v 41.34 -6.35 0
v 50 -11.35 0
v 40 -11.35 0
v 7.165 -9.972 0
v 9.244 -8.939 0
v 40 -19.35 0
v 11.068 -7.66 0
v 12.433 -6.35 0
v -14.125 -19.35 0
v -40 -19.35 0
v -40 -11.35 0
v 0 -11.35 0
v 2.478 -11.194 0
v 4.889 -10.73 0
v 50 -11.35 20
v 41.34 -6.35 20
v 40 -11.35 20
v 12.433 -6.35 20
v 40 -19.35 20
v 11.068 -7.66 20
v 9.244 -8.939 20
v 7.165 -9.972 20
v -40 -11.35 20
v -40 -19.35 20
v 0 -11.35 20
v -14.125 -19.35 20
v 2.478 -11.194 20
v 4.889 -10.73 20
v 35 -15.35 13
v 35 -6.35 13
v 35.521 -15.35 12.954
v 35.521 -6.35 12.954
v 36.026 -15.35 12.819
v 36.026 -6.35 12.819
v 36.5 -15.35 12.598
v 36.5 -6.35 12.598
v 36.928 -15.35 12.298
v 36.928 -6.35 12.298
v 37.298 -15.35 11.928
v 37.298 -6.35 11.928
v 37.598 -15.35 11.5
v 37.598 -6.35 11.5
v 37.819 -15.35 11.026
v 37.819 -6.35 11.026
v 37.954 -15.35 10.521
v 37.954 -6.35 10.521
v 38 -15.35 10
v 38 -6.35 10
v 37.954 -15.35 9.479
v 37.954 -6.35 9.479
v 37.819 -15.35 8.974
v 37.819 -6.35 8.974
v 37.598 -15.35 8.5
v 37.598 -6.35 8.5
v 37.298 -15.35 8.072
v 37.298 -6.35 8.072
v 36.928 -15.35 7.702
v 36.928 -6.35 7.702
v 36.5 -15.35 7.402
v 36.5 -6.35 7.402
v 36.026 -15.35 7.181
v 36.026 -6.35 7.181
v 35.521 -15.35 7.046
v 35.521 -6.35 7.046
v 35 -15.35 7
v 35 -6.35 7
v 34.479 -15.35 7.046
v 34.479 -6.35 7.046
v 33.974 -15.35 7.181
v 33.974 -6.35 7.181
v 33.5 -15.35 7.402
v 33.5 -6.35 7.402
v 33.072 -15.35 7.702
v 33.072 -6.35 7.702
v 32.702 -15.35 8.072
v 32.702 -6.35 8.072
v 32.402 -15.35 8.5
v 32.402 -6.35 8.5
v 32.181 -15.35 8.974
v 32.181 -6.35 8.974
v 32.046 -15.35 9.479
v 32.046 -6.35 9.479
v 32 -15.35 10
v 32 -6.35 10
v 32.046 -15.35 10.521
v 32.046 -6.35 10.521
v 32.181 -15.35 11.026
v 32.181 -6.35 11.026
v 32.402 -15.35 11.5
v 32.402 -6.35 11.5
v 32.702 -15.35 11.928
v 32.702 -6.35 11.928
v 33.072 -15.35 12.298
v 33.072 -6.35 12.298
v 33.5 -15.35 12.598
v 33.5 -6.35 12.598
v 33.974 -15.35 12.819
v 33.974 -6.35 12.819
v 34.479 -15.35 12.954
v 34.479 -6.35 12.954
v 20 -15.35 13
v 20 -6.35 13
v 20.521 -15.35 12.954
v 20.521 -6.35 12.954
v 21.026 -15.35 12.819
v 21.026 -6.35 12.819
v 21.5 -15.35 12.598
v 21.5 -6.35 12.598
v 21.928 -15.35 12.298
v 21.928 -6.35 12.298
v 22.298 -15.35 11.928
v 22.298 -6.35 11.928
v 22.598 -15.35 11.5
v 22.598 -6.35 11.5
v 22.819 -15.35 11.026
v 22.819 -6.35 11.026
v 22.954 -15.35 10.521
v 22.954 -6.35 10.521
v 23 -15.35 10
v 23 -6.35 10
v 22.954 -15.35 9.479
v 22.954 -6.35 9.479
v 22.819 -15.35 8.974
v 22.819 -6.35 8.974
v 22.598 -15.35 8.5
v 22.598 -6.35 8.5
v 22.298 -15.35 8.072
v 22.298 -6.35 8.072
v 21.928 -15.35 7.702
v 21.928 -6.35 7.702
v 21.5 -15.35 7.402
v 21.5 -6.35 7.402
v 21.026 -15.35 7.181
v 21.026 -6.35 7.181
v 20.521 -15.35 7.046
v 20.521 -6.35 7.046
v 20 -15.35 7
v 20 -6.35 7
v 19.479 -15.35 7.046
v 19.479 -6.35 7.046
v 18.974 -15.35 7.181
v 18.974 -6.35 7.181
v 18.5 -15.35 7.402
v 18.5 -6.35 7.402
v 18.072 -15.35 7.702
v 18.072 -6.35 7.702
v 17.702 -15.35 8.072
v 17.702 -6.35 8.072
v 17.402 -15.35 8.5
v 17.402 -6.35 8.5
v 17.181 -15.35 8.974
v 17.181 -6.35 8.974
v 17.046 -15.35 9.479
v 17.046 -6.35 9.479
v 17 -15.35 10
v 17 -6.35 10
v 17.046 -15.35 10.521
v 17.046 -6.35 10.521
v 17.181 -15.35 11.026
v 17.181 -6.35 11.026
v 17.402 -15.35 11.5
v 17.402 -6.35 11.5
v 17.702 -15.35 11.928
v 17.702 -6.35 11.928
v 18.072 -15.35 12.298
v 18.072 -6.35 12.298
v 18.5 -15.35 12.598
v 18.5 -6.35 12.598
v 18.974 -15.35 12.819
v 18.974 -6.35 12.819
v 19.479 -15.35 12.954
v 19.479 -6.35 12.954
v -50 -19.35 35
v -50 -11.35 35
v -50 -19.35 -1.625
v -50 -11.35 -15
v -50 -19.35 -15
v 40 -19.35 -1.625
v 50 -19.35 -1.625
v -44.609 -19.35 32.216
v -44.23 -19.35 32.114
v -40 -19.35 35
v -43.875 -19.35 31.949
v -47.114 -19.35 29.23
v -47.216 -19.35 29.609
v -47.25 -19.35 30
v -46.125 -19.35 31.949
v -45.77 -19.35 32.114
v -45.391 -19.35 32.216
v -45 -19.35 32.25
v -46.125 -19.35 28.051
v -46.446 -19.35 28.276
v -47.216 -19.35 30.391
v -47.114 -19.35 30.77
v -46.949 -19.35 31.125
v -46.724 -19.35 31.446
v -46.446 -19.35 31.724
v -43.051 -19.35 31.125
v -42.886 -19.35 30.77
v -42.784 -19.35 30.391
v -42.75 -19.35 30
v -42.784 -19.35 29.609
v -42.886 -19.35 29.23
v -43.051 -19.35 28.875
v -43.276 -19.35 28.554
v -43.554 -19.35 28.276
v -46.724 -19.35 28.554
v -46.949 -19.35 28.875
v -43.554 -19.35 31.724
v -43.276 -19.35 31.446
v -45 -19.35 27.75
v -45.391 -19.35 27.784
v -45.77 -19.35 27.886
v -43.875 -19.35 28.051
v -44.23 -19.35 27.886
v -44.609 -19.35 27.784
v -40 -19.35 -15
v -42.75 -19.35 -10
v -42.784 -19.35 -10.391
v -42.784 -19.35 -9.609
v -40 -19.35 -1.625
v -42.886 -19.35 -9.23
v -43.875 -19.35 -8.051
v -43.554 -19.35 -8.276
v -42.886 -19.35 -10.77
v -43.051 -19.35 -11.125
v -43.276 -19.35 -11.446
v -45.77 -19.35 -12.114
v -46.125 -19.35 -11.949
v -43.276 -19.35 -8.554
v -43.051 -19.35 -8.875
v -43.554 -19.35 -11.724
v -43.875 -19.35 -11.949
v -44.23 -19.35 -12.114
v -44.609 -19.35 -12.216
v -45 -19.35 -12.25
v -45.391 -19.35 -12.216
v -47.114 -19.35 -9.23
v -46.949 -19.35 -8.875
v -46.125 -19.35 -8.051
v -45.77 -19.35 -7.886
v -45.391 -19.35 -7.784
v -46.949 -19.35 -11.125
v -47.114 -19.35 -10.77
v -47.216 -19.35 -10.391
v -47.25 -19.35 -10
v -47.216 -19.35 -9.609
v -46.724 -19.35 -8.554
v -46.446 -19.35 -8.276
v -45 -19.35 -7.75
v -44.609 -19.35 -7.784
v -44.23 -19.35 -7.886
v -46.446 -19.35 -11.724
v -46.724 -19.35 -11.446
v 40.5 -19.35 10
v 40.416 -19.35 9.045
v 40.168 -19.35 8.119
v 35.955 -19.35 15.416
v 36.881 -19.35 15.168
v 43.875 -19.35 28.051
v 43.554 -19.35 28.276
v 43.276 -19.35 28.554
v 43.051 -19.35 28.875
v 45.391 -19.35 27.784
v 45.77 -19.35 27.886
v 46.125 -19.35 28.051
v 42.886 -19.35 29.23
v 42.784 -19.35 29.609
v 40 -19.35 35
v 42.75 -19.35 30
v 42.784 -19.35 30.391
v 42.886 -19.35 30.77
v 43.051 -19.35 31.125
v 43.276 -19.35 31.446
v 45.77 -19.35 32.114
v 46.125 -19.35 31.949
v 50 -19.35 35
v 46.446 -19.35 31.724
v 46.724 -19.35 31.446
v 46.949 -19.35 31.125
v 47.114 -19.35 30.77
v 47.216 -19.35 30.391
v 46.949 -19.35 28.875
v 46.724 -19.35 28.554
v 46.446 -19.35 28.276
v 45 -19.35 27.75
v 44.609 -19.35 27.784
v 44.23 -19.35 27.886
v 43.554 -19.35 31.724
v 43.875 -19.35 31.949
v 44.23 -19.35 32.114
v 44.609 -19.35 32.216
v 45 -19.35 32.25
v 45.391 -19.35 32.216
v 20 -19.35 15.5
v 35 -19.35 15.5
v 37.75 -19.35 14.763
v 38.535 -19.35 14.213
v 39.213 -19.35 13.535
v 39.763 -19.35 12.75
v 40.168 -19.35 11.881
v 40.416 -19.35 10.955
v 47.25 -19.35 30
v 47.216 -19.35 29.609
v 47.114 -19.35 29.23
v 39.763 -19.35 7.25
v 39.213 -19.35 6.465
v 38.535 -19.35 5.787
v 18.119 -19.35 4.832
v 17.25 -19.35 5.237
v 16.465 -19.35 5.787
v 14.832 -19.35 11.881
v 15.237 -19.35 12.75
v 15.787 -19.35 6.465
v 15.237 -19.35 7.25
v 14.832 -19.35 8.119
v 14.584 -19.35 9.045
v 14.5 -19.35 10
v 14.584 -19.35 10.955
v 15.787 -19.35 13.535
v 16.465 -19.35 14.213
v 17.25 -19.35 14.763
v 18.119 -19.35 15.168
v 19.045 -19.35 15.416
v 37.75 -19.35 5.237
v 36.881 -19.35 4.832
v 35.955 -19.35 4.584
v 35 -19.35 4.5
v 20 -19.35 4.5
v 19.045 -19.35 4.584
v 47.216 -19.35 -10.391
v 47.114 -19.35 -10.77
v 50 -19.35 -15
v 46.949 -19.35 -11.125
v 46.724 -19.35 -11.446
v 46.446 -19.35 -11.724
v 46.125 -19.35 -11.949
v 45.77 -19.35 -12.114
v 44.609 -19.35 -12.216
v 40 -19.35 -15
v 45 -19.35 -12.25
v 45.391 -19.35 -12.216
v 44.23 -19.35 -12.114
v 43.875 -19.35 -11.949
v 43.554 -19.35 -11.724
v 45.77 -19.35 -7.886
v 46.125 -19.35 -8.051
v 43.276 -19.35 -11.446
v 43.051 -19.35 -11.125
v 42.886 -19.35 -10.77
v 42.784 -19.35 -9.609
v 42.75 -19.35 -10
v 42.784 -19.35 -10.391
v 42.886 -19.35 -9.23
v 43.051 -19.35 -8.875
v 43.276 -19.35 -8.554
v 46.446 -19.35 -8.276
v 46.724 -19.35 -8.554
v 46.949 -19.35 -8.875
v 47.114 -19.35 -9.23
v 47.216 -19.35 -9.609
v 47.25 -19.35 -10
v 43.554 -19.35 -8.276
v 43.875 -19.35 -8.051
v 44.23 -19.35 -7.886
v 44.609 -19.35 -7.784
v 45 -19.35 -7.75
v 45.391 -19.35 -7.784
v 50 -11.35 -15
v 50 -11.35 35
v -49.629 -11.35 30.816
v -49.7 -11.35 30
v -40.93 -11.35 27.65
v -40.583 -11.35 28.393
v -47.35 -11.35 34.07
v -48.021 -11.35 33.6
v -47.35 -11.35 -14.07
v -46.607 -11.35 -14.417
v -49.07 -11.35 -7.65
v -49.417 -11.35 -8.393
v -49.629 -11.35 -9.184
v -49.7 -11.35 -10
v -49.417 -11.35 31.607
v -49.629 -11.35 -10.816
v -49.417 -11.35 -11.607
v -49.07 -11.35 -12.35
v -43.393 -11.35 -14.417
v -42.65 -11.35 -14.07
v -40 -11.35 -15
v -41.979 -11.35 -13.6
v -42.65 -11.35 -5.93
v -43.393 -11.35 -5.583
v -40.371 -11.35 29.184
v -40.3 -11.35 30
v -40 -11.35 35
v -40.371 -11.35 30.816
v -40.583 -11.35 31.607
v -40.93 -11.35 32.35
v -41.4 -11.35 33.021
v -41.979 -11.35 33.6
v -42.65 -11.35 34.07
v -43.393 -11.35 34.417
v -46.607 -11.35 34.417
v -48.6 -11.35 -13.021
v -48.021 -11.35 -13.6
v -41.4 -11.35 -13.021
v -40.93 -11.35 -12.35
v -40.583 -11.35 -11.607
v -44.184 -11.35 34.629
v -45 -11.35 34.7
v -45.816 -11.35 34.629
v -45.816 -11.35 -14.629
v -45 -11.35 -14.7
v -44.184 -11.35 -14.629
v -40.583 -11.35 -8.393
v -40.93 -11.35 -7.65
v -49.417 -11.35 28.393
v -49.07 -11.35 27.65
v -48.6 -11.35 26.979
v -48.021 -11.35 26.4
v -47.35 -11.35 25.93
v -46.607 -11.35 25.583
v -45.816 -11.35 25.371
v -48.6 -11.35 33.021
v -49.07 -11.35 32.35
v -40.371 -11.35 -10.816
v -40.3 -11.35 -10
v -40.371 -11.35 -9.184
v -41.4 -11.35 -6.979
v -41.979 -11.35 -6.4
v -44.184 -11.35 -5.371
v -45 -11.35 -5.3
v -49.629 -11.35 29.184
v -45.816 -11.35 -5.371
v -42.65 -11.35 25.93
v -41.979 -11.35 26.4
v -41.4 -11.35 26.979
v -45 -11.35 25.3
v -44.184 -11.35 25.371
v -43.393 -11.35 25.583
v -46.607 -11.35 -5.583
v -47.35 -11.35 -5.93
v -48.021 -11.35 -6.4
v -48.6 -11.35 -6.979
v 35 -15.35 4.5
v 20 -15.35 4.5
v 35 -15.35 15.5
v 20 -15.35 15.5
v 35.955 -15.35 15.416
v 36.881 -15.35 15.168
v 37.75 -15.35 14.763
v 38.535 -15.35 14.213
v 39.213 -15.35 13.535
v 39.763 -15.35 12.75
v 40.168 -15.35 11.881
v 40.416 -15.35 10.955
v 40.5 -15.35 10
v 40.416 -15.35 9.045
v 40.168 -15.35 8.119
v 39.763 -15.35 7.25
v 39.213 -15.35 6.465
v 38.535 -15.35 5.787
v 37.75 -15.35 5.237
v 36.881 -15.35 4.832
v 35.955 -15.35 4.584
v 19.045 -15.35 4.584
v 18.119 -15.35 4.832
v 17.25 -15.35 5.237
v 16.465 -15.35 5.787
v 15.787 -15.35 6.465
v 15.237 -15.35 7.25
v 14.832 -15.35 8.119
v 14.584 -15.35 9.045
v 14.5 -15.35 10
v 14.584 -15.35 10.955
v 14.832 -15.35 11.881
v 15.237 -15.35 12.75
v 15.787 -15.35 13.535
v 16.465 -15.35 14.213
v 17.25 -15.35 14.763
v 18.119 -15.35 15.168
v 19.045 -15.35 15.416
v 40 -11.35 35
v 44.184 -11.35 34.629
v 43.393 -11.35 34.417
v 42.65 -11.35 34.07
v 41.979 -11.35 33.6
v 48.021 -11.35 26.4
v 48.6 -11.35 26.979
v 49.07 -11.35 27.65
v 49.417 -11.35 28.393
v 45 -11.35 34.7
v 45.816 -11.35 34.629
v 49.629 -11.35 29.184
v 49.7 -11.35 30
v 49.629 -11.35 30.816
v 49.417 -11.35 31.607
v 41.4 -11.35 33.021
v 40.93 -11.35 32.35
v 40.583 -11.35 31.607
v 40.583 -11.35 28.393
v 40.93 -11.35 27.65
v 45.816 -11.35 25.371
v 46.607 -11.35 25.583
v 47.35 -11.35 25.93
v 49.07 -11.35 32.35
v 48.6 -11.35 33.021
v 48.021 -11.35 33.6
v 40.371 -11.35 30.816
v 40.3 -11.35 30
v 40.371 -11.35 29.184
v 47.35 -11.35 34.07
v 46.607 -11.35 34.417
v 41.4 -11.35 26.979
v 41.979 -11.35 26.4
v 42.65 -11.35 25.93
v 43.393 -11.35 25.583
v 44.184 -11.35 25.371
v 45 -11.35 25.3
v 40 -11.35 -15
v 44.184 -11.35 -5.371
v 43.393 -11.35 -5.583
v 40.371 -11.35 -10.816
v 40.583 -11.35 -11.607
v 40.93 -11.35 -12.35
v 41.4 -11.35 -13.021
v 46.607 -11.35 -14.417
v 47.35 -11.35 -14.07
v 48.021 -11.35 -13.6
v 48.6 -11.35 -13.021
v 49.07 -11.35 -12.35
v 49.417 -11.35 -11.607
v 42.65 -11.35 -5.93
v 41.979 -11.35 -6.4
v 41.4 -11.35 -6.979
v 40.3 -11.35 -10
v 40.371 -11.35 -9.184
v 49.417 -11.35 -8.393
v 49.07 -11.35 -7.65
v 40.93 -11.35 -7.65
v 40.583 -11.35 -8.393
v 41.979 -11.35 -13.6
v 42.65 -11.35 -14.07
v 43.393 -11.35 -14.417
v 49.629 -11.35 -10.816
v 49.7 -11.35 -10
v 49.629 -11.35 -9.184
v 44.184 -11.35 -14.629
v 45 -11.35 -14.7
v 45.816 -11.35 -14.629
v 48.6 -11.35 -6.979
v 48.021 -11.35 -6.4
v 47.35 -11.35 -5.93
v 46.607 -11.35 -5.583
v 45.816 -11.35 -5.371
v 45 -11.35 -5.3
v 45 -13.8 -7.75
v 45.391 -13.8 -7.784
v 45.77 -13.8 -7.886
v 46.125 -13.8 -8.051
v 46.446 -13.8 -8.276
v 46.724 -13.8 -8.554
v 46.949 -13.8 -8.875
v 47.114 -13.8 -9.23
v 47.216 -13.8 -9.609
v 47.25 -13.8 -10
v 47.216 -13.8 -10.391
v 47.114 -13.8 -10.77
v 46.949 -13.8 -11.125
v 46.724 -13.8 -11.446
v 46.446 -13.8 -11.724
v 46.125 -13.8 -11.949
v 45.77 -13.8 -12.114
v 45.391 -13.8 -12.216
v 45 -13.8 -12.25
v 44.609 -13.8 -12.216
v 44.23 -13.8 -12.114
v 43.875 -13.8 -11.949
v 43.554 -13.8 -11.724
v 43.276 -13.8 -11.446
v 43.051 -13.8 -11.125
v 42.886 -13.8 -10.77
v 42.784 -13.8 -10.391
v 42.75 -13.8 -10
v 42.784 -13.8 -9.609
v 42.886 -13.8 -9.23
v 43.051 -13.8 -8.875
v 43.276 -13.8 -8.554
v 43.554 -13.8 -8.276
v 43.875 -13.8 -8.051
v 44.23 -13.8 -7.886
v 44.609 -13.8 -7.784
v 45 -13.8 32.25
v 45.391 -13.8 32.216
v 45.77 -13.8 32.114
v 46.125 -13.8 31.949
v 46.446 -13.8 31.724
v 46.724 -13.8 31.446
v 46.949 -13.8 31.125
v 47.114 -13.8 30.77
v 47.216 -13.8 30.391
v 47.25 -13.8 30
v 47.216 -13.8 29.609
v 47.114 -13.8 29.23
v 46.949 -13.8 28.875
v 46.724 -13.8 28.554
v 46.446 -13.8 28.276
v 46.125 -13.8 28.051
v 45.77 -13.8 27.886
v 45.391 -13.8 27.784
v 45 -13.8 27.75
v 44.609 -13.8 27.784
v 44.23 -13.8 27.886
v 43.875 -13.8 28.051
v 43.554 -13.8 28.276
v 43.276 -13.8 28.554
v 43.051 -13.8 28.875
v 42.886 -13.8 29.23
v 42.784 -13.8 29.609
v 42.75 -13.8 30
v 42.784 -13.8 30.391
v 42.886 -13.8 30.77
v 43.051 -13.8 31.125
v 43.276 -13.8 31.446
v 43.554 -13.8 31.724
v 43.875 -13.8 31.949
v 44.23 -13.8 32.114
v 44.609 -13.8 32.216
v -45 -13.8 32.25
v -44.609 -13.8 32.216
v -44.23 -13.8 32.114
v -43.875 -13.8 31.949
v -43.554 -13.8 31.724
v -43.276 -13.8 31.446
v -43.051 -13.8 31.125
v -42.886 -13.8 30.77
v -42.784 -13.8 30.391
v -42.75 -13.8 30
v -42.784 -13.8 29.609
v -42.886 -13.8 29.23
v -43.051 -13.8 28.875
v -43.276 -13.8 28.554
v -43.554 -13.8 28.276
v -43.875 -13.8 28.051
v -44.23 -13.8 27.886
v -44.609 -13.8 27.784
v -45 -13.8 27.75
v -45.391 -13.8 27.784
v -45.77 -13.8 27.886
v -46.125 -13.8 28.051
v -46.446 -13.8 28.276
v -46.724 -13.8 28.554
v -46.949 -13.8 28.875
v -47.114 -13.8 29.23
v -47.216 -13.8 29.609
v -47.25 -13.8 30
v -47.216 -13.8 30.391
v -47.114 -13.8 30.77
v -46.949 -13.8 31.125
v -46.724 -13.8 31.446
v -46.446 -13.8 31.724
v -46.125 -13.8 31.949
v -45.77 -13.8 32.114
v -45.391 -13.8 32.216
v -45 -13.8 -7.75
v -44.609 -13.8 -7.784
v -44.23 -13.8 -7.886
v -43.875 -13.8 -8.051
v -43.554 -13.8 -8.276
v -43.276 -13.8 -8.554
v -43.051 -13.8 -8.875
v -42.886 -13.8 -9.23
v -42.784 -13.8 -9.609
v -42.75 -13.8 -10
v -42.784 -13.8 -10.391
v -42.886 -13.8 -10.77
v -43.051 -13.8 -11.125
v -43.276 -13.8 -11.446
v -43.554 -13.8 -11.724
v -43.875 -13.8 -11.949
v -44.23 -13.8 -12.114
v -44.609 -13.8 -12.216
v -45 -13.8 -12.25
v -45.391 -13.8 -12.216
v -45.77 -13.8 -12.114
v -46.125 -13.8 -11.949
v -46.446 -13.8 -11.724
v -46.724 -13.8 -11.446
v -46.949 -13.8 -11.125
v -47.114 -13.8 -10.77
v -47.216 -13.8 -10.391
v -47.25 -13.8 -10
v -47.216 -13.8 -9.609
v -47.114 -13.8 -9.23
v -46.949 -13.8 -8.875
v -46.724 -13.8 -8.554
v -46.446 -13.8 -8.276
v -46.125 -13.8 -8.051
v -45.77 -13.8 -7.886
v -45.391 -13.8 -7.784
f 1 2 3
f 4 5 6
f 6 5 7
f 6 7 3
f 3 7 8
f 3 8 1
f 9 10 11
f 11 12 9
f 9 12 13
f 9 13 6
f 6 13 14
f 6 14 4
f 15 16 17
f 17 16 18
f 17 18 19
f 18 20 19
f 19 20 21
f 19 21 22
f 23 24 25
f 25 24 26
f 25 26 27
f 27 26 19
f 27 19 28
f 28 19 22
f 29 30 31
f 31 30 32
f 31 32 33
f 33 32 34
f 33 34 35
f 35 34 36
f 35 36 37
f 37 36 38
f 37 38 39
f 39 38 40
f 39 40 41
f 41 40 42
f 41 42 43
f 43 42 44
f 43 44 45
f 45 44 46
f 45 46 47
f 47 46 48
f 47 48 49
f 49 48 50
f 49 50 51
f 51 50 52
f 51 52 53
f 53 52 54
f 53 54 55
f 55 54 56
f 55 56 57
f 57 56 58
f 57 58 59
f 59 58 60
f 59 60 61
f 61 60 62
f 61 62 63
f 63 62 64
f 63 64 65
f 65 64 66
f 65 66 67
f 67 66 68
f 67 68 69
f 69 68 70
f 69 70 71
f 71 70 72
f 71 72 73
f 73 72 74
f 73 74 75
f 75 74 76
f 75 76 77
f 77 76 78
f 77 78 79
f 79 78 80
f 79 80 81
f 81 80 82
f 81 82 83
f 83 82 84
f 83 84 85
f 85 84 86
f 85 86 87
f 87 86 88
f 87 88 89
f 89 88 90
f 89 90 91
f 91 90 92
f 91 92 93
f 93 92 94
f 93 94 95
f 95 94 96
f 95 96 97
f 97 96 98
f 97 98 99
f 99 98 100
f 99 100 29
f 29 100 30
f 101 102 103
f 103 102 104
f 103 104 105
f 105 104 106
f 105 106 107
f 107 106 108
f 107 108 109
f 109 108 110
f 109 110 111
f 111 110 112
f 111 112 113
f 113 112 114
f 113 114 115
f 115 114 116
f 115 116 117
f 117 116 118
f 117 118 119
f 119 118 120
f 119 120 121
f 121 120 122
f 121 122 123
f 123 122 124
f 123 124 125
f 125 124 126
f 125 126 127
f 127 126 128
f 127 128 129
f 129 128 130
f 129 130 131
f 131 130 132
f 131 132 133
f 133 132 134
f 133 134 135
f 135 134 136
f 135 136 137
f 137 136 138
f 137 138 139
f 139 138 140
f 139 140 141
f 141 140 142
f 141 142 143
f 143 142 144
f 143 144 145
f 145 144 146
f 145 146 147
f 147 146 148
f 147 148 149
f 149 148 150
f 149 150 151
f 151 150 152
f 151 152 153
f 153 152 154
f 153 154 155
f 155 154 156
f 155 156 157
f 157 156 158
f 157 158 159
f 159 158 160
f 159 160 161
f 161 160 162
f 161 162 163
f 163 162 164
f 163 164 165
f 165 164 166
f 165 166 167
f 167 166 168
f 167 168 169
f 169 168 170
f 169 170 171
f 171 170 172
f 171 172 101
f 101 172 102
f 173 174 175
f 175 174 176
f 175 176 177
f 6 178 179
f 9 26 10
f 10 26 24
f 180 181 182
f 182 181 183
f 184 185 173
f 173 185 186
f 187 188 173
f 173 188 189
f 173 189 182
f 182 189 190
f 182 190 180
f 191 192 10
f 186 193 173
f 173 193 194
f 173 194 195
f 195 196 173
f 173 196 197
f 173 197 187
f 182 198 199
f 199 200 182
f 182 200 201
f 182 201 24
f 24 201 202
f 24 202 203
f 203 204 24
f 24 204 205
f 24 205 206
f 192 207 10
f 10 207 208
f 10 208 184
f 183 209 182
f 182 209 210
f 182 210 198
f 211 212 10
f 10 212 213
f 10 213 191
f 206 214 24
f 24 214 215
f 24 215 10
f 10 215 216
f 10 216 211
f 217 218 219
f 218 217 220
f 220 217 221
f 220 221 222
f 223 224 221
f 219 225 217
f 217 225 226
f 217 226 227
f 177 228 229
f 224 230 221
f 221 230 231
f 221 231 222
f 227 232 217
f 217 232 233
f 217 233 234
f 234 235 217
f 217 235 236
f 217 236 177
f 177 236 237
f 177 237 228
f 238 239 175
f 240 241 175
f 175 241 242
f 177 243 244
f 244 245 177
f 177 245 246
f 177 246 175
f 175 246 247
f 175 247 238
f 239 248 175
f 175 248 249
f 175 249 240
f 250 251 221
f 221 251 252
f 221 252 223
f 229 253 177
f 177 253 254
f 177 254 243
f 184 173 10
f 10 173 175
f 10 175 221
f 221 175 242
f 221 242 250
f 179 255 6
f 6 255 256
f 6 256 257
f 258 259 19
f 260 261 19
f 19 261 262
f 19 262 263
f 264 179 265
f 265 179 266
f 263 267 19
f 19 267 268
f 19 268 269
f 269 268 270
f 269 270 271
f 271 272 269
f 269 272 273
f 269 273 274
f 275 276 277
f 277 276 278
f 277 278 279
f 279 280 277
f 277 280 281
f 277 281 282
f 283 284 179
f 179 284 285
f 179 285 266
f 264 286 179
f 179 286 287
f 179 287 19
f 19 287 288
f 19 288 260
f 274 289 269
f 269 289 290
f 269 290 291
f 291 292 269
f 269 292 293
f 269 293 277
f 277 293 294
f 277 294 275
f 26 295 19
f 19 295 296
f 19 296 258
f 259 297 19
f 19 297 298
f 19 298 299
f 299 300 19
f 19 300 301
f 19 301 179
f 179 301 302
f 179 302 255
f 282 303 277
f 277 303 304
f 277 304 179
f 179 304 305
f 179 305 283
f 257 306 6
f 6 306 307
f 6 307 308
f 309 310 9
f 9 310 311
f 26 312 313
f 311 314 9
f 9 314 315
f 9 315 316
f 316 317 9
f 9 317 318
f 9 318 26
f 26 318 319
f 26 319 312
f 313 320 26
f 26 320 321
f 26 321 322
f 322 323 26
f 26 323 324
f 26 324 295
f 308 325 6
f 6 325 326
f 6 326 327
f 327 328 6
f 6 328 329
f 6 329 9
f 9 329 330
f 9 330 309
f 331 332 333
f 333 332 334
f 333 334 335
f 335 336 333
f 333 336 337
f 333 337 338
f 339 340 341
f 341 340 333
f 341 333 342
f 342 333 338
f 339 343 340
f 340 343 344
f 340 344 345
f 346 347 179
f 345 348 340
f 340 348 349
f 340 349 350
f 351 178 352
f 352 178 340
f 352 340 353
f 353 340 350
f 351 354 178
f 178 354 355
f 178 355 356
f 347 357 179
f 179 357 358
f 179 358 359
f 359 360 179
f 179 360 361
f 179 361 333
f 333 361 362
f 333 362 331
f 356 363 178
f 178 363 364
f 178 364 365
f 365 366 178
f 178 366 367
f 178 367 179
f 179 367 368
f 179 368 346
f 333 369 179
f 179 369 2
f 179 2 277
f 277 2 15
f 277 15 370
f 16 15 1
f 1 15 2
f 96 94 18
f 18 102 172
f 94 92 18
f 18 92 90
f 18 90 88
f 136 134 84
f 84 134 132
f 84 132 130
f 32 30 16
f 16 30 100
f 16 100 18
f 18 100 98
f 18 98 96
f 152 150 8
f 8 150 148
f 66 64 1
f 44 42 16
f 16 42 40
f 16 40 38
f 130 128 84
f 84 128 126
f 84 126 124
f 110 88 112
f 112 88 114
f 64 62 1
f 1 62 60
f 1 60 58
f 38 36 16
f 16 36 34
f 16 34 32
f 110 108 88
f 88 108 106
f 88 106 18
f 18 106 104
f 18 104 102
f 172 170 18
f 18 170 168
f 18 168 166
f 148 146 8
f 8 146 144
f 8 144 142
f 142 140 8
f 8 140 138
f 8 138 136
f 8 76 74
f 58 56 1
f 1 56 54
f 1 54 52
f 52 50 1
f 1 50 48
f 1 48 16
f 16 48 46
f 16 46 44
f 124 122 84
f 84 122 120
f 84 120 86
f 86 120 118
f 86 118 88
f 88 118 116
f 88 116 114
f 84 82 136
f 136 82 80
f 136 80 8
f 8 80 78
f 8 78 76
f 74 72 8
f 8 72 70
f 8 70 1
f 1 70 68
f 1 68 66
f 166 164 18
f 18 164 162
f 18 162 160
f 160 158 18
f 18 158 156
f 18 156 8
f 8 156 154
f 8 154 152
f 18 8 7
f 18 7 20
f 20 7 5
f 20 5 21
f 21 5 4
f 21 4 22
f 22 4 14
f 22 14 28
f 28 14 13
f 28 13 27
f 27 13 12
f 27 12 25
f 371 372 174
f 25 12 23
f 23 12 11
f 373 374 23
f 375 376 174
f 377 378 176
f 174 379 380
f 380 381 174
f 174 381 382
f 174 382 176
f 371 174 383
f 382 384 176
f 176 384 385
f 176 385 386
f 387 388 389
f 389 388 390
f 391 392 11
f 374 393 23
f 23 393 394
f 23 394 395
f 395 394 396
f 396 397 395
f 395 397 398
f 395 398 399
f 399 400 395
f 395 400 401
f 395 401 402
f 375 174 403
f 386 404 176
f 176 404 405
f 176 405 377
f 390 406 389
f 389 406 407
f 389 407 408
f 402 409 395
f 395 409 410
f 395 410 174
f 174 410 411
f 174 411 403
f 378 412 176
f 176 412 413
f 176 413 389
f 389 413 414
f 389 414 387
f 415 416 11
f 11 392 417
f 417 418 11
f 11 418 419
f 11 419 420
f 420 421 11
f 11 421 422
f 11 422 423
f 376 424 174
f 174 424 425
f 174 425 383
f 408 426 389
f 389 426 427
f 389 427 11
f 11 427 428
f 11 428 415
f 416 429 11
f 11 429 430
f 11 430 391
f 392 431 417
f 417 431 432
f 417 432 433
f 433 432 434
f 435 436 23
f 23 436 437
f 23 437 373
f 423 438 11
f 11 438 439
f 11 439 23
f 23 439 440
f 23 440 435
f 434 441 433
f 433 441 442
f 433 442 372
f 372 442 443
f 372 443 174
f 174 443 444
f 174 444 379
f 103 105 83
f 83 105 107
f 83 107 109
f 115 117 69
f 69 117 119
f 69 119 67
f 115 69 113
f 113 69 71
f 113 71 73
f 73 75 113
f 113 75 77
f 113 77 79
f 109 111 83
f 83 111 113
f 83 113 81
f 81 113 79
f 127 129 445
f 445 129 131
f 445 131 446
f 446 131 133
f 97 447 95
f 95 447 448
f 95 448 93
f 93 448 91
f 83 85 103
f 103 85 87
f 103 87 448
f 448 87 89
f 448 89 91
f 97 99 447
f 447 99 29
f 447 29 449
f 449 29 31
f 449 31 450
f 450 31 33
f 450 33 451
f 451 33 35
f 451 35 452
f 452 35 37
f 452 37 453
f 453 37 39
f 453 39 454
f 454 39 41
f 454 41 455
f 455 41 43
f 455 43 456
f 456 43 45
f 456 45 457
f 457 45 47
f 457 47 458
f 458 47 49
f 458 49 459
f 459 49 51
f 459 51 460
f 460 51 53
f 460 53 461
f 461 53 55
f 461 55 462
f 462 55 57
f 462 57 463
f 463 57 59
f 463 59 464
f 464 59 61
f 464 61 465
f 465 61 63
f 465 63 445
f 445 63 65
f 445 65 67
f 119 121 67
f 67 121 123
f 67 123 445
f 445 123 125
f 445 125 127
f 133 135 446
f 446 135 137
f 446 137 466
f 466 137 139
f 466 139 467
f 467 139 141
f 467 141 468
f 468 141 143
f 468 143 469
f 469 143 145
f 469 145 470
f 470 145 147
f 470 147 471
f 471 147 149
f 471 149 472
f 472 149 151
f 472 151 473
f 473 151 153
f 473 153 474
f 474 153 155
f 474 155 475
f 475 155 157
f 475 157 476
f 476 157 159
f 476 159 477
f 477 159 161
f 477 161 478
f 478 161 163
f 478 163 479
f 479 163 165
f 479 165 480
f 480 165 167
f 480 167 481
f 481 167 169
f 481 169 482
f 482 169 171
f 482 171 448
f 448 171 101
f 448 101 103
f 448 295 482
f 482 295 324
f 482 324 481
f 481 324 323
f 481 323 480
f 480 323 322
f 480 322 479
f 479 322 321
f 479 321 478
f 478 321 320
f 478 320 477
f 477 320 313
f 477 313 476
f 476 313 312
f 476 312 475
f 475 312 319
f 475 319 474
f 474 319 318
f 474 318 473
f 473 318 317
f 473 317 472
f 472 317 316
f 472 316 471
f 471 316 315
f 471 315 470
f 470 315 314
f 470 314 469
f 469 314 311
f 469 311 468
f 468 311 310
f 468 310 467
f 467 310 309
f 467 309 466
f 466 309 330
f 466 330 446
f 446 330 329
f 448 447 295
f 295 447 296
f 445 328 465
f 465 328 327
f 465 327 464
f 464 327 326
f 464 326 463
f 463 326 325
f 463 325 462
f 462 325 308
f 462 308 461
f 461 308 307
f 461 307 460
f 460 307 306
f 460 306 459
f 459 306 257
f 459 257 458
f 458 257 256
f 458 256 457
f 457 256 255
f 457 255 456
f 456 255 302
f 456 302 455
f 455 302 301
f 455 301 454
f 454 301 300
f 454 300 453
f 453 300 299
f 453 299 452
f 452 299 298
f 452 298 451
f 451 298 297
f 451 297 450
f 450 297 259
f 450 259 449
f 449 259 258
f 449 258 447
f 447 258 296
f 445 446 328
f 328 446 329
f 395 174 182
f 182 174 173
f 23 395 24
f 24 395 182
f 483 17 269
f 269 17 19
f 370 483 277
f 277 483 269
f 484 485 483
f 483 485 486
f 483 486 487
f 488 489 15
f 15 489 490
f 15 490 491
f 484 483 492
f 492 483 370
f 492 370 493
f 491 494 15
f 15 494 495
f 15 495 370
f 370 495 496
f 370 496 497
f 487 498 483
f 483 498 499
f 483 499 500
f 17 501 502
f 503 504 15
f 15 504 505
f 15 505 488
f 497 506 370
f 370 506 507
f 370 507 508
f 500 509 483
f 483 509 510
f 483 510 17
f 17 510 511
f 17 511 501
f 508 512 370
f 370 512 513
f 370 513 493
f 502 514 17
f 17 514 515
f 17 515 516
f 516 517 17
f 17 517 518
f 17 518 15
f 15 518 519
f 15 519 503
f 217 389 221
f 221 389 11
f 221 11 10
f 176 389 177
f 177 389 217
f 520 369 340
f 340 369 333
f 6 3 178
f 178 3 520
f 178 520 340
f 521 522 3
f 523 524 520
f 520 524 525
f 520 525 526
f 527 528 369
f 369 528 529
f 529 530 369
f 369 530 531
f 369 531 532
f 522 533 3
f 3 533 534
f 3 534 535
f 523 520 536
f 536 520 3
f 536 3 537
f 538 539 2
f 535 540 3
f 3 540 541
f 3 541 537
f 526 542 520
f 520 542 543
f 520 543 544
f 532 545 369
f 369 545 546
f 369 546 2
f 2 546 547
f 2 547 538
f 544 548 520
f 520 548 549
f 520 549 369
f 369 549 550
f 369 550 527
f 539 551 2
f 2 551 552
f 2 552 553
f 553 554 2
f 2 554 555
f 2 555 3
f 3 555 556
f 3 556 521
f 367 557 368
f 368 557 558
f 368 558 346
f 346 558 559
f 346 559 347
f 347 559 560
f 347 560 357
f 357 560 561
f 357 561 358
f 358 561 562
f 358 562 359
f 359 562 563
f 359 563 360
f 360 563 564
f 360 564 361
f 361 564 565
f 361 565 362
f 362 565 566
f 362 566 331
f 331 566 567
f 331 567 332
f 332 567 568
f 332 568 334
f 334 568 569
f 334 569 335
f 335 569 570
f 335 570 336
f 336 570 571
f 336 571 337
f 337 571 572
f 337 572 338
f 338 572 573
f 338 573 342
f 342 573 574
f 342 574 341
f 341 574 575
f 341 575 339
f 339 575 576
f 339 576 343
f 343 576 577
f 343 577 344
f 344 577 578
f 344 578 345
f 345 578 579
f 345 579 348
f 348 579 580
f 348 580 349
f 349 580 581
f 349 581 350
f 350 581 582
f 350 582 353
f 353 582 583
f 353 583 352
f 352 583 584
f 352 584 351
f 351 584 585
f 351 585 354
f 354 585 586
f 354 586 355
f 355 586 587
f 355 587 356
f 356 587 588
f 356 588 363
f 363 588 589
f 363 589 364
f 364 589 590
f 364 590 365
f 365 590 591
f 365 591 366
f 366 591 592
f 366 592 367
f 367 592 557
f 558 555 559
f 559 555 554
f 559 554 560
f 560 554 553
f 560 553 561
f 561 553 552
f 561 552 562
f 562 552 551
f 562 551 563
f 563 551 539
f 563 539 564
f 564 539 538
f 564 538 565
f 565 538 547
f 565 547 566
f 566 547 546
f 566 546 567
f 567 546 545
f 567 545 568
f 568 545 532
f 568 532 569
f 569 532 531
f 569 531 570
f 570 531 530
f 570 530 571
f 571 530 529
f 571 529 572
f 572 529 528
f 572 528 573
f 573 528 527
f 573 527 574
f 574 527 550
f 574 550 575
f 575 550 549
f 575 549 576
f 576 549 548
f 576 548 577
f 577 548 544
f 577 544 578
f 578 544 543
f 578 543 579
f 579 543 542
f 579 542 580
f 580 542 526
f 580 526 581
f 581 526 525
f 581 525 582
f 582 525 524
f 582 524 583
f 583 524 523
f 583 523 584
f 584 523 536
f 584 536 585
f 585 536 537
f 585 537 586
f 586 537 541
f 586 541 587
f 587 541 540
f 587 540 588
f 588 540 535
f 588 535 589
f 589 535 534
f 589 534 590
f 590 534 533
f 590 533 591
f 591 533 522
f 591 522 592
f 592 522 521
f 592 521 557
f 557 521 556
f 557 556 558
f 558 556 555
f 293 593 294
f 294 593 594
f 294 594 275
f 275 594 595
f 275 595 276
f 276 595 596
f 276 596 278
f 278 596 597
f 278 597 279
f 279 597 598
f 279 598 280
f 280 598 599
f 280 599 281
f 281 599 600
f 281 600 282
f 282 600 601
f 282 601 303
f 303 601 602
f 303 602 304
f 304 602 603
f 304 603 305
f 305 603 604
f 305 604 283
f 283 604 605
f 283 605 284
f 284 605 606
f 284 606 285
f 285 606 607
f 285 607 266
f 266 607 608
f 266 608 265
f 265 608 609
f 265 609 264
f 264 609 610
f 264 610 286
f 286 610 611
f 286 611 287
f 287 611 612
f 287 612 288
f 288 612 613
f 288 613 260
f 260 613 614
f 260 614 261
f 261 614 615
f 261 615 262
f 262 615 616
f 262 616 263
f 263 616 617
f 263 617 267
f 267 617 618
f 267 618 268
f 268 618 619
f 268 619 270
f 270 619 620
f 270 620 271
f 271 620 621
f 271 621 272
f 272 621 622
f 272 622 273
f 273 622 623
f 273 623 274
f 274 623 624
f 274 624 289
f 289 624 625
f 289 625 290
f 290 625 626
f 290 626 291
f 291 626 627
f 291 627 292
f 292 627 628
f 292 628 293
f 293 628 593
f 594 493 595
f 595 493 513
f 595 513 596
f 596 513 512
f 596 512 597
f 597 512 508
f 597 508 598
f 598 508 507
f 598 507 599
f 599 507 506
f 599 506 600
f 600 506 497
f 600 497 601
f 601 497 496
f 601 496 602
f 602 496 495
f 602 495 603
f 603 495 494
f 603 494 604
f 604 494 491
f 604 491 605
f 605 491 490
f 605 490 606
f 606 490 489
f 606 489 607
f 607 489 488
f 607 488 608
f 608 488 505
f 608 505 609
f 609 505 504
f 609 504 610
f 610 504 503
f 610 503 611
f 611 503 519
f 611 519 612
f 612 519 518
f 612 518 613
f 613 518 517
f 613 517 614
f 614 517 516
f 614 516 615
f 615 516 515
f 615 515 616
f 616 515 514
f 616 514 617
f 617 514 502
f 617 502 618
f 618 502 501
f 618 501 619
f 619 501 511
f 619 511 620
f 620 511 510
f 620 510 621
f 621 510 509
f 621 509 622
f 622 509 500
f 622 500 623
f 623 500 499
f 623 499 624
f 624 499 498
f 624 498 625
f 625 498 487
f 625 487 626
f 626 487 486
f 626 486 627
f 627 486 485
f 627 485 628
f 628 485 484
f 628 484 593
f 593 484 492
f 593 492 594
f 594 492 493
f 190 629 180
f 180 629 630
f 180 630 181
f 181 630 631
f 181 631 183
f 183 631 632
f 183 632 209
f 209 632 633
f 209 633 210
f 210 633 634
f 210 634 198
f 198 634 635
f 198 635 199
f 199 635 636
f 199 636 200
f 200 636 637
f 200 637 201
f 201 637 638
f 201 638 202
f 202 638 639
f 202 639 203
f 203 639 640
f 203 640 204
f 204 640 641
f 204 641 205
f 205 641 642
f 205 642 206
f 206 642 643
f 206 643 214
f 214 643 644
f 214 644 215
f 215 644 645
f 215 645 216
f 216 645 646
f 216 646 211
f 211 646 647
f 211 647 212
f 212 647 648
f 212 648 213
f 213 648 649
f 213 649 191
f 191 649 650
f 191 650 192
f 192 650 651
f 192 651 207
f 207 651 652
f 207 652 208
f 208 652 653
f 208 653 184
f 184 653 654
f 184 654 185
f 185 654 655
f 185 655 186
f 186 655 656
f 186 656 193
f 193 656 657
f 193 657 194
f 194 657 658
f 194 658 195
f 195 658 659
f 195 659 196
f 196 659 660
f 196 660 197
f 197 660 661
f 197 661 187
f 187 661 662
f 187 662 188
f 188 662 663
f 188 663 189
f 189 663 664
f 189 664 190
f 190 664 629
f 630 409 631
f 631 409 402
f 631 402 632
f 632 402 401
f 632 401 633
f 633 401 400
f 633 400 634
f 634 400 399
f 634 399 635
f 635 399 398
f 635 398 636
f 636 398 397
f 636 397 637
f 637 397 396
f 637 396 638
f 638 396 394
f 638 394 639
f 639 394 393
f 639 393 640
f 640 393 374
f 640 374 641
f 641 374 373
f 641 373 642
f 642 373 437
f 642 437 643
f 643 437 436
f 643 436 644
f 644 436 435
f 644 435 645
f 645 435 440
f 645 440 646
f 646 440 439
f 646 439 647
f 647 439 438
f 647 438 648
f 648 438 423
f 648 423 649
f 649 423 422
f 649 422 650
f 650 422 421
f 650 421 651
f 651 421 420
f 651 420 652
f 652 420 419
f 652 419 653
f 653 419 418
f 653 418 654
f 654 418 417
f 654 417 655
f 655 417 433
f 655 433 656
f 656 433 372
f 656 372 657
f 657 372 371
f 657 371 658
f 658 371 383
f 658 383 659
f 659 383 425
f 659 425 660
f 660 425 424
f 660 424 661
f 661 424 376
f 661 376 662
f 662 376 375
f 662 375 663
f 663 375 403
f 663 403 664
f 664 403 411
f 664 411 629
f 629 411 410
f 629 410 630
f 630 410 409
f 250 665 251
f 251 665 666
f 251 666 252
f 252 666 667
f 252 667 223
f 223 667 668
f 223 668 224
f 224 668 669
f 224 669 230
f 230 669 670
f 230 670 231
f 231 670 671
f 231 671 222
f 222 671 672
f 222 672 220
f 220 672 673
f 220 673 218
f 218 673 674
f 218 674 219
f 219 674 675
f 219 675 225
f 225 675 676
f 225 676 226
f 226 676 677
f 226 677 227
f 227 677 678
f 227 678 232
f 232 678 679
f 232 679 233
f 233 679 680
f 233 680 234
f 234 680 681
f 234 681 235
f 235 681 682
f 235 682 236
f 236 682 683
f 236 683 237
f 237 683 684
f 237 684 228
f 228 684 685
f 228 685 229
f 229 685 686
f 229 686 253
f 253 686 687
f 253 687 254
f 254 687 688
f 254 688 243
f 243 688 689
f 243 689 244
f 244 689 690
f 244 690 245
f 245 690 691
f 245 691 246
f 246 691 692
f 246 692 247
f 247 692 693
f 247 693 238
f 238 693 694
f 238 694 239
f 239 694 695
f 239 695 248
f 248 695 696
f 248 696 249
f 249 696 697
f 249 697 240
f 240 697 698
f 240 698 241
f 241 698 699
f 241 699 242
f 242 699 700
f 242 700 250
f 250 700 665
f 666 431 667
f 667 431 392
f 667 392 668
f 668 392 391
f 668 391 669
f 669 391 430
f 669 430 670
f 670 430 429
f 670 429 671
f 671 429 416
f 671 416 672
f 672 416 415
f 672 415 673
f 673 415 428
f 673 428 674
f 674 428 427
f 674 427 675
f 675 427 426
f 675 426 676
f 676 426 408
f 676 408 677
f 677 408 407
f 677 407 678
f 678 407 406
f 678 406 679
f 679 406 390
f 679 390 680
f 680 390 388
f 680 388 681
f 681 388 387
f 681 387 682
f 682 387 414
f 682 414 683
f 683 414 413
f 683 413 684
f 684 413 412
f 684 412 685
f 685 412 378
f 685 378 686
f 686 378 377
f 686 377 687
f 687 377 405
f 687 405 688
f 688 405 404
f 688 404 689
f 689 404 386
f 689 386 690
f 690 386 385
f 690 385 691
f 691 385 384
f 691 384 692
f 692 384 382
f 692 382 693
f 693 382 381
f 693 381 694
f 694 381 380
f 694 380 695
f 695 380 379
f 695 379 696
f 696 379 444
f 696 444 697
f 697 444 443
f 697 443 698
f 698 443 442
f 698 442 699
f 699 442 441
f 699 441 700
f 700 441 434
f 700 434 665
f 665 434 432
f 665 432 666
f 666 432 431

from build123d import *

# Parameters (mm, degrees)
SKETCH1_W                                       = 50
SKETCH1_H                                       = 8
BOSS_EXTRUDE1_DEPTH                             = 20
SKETCH2_R                                       = 3
CUT_EXTRUDE1_DEPTH                              = 17
CUT_EXTRUDE2_DEPTH                              = 4
SKETCH4_W                                       = 10
SKETCH4_H                                       = 15
BOSS_EXTRUDE2_DEPTH                             = 8
CSK_FOR_M4_FLAT_HEAD_MACHINE_SCREW1_D           = 4.5
CSK_FOR_M4_FLAT_HEAD_MACHINE_SCREW1_CSINK_D     = 9.4
CSK_FOR_M4_FLAT_HEAD_MACHINE_SCREW1_CSINK_ANGLE = 90


with BuildPart() as part:
    # Sketch1 → Boss-Extrude1 (new body)
    with BuildSketch(Plane.XY):
        with Locations((-25, -15.35)):
            Rectangle(SKETCH1_W, SKETCH1_H)
        with Locations((25, -15.35)):
            Rectangle(SKETCH1_W, SKETCH1_H)
        with BuildLine():
            Line((40, -6.35), (12.432745191, -6.35))
            add(Edge.make_bspline(
                [(0, -11.35), (7.972410052, -11.35), (12.432745191, -6.35)],
                knots=[1.570796327, 1.570796327, 1.570796327, 2.547844784, 2.547844784, 2.547844784], degree=2, weights=[1, 0.883026434, 1]))
            Line((0, -11.35), (50, -11.35))
            Line((50, -11.35), (41.339745962, -6.35))
            Line((41.339745962, -6.35), (40, -6.35))
        make_face()
    extrude(amount=BOSS_EXTRUDE1_DEPTH)

    # Sketch2 → Cut-Extrude1 (cut)
    with BuildSketch(Plane(origin=(0, -6.35, 0), x_dir=(1, 0, 0), z_dir=(0, 1, 0))):
        with Locations((35, -10)):
            Circle(SKETCH2_R)
        with Locations((20, -10)):
            Circle(SKETCH2_R)
    extrude(amount=-CUT_EXTRUDE1_DEPTH, mode=Mode.SUBTRACT)

    # Sketch3 → Cut-Extrude2 (cut)
    with BuildSketch(Plane.XZ.offset(19.35)):
        with BuildLine():
            Line((20, 15.5), (35, 15.5))
            ThreePointArc((35, 15.5), (40.5, 10), (35, 4.5))
            Line((35, 4.5), (20, 4.5))
            ThreePointArc((20, 4.5), (14.5, 10), (20, 15.5))
        make_face()
    extrude(amount=-CUT_EXTRUDE2_DEPTH, mode=Mode.SUBTRACT)

    # Sketch4 → Boss-Extrude2 (add)
    with BuildSketch(Plane.XZ.offset(19.35)):
        with Locations((-45, 27.5)):
            Rectangle(SKETCH4_W, SKETCH4_H)
        with Locations((45, 27.5)):
            Rectangle(SKETCH4_W, SKETCH4_H)
        with Locations((-45, -7.5)):
            Rectangle(SKETCH4_W, SKETCH4_H)
        with Locations((45, -7.5)):
            Rectangle(SKETCH4_W, SKETCH4_H)
    extrude(amount=-BOSS_EXTRUDE2_DEPTH)

    # CSK for M4 Flat Head Machine Screw1 (through all)
    with Locations(Plane(origin=(0, -11.35, 0), x_dir=(1, 0, 0), z_dir=(0, 1, 0))):
        with Locations((-45, 10), (-45, -30), (45, -30), (45, 10)):
            CounterSinkHole(CSK_FOR_M4_FLAT_HEAD_MACHINE_SCREW1_D / 2, CSK_FOR_M4_FLAT_HEAD_MACHINE_SCREW1_CSINK_D / 2, counter_sink_angle=CSK_FOR_M4_FLAT_HEAD_MACHINE_SCREW1_CSINK_ANGLE)


solid = part.part
